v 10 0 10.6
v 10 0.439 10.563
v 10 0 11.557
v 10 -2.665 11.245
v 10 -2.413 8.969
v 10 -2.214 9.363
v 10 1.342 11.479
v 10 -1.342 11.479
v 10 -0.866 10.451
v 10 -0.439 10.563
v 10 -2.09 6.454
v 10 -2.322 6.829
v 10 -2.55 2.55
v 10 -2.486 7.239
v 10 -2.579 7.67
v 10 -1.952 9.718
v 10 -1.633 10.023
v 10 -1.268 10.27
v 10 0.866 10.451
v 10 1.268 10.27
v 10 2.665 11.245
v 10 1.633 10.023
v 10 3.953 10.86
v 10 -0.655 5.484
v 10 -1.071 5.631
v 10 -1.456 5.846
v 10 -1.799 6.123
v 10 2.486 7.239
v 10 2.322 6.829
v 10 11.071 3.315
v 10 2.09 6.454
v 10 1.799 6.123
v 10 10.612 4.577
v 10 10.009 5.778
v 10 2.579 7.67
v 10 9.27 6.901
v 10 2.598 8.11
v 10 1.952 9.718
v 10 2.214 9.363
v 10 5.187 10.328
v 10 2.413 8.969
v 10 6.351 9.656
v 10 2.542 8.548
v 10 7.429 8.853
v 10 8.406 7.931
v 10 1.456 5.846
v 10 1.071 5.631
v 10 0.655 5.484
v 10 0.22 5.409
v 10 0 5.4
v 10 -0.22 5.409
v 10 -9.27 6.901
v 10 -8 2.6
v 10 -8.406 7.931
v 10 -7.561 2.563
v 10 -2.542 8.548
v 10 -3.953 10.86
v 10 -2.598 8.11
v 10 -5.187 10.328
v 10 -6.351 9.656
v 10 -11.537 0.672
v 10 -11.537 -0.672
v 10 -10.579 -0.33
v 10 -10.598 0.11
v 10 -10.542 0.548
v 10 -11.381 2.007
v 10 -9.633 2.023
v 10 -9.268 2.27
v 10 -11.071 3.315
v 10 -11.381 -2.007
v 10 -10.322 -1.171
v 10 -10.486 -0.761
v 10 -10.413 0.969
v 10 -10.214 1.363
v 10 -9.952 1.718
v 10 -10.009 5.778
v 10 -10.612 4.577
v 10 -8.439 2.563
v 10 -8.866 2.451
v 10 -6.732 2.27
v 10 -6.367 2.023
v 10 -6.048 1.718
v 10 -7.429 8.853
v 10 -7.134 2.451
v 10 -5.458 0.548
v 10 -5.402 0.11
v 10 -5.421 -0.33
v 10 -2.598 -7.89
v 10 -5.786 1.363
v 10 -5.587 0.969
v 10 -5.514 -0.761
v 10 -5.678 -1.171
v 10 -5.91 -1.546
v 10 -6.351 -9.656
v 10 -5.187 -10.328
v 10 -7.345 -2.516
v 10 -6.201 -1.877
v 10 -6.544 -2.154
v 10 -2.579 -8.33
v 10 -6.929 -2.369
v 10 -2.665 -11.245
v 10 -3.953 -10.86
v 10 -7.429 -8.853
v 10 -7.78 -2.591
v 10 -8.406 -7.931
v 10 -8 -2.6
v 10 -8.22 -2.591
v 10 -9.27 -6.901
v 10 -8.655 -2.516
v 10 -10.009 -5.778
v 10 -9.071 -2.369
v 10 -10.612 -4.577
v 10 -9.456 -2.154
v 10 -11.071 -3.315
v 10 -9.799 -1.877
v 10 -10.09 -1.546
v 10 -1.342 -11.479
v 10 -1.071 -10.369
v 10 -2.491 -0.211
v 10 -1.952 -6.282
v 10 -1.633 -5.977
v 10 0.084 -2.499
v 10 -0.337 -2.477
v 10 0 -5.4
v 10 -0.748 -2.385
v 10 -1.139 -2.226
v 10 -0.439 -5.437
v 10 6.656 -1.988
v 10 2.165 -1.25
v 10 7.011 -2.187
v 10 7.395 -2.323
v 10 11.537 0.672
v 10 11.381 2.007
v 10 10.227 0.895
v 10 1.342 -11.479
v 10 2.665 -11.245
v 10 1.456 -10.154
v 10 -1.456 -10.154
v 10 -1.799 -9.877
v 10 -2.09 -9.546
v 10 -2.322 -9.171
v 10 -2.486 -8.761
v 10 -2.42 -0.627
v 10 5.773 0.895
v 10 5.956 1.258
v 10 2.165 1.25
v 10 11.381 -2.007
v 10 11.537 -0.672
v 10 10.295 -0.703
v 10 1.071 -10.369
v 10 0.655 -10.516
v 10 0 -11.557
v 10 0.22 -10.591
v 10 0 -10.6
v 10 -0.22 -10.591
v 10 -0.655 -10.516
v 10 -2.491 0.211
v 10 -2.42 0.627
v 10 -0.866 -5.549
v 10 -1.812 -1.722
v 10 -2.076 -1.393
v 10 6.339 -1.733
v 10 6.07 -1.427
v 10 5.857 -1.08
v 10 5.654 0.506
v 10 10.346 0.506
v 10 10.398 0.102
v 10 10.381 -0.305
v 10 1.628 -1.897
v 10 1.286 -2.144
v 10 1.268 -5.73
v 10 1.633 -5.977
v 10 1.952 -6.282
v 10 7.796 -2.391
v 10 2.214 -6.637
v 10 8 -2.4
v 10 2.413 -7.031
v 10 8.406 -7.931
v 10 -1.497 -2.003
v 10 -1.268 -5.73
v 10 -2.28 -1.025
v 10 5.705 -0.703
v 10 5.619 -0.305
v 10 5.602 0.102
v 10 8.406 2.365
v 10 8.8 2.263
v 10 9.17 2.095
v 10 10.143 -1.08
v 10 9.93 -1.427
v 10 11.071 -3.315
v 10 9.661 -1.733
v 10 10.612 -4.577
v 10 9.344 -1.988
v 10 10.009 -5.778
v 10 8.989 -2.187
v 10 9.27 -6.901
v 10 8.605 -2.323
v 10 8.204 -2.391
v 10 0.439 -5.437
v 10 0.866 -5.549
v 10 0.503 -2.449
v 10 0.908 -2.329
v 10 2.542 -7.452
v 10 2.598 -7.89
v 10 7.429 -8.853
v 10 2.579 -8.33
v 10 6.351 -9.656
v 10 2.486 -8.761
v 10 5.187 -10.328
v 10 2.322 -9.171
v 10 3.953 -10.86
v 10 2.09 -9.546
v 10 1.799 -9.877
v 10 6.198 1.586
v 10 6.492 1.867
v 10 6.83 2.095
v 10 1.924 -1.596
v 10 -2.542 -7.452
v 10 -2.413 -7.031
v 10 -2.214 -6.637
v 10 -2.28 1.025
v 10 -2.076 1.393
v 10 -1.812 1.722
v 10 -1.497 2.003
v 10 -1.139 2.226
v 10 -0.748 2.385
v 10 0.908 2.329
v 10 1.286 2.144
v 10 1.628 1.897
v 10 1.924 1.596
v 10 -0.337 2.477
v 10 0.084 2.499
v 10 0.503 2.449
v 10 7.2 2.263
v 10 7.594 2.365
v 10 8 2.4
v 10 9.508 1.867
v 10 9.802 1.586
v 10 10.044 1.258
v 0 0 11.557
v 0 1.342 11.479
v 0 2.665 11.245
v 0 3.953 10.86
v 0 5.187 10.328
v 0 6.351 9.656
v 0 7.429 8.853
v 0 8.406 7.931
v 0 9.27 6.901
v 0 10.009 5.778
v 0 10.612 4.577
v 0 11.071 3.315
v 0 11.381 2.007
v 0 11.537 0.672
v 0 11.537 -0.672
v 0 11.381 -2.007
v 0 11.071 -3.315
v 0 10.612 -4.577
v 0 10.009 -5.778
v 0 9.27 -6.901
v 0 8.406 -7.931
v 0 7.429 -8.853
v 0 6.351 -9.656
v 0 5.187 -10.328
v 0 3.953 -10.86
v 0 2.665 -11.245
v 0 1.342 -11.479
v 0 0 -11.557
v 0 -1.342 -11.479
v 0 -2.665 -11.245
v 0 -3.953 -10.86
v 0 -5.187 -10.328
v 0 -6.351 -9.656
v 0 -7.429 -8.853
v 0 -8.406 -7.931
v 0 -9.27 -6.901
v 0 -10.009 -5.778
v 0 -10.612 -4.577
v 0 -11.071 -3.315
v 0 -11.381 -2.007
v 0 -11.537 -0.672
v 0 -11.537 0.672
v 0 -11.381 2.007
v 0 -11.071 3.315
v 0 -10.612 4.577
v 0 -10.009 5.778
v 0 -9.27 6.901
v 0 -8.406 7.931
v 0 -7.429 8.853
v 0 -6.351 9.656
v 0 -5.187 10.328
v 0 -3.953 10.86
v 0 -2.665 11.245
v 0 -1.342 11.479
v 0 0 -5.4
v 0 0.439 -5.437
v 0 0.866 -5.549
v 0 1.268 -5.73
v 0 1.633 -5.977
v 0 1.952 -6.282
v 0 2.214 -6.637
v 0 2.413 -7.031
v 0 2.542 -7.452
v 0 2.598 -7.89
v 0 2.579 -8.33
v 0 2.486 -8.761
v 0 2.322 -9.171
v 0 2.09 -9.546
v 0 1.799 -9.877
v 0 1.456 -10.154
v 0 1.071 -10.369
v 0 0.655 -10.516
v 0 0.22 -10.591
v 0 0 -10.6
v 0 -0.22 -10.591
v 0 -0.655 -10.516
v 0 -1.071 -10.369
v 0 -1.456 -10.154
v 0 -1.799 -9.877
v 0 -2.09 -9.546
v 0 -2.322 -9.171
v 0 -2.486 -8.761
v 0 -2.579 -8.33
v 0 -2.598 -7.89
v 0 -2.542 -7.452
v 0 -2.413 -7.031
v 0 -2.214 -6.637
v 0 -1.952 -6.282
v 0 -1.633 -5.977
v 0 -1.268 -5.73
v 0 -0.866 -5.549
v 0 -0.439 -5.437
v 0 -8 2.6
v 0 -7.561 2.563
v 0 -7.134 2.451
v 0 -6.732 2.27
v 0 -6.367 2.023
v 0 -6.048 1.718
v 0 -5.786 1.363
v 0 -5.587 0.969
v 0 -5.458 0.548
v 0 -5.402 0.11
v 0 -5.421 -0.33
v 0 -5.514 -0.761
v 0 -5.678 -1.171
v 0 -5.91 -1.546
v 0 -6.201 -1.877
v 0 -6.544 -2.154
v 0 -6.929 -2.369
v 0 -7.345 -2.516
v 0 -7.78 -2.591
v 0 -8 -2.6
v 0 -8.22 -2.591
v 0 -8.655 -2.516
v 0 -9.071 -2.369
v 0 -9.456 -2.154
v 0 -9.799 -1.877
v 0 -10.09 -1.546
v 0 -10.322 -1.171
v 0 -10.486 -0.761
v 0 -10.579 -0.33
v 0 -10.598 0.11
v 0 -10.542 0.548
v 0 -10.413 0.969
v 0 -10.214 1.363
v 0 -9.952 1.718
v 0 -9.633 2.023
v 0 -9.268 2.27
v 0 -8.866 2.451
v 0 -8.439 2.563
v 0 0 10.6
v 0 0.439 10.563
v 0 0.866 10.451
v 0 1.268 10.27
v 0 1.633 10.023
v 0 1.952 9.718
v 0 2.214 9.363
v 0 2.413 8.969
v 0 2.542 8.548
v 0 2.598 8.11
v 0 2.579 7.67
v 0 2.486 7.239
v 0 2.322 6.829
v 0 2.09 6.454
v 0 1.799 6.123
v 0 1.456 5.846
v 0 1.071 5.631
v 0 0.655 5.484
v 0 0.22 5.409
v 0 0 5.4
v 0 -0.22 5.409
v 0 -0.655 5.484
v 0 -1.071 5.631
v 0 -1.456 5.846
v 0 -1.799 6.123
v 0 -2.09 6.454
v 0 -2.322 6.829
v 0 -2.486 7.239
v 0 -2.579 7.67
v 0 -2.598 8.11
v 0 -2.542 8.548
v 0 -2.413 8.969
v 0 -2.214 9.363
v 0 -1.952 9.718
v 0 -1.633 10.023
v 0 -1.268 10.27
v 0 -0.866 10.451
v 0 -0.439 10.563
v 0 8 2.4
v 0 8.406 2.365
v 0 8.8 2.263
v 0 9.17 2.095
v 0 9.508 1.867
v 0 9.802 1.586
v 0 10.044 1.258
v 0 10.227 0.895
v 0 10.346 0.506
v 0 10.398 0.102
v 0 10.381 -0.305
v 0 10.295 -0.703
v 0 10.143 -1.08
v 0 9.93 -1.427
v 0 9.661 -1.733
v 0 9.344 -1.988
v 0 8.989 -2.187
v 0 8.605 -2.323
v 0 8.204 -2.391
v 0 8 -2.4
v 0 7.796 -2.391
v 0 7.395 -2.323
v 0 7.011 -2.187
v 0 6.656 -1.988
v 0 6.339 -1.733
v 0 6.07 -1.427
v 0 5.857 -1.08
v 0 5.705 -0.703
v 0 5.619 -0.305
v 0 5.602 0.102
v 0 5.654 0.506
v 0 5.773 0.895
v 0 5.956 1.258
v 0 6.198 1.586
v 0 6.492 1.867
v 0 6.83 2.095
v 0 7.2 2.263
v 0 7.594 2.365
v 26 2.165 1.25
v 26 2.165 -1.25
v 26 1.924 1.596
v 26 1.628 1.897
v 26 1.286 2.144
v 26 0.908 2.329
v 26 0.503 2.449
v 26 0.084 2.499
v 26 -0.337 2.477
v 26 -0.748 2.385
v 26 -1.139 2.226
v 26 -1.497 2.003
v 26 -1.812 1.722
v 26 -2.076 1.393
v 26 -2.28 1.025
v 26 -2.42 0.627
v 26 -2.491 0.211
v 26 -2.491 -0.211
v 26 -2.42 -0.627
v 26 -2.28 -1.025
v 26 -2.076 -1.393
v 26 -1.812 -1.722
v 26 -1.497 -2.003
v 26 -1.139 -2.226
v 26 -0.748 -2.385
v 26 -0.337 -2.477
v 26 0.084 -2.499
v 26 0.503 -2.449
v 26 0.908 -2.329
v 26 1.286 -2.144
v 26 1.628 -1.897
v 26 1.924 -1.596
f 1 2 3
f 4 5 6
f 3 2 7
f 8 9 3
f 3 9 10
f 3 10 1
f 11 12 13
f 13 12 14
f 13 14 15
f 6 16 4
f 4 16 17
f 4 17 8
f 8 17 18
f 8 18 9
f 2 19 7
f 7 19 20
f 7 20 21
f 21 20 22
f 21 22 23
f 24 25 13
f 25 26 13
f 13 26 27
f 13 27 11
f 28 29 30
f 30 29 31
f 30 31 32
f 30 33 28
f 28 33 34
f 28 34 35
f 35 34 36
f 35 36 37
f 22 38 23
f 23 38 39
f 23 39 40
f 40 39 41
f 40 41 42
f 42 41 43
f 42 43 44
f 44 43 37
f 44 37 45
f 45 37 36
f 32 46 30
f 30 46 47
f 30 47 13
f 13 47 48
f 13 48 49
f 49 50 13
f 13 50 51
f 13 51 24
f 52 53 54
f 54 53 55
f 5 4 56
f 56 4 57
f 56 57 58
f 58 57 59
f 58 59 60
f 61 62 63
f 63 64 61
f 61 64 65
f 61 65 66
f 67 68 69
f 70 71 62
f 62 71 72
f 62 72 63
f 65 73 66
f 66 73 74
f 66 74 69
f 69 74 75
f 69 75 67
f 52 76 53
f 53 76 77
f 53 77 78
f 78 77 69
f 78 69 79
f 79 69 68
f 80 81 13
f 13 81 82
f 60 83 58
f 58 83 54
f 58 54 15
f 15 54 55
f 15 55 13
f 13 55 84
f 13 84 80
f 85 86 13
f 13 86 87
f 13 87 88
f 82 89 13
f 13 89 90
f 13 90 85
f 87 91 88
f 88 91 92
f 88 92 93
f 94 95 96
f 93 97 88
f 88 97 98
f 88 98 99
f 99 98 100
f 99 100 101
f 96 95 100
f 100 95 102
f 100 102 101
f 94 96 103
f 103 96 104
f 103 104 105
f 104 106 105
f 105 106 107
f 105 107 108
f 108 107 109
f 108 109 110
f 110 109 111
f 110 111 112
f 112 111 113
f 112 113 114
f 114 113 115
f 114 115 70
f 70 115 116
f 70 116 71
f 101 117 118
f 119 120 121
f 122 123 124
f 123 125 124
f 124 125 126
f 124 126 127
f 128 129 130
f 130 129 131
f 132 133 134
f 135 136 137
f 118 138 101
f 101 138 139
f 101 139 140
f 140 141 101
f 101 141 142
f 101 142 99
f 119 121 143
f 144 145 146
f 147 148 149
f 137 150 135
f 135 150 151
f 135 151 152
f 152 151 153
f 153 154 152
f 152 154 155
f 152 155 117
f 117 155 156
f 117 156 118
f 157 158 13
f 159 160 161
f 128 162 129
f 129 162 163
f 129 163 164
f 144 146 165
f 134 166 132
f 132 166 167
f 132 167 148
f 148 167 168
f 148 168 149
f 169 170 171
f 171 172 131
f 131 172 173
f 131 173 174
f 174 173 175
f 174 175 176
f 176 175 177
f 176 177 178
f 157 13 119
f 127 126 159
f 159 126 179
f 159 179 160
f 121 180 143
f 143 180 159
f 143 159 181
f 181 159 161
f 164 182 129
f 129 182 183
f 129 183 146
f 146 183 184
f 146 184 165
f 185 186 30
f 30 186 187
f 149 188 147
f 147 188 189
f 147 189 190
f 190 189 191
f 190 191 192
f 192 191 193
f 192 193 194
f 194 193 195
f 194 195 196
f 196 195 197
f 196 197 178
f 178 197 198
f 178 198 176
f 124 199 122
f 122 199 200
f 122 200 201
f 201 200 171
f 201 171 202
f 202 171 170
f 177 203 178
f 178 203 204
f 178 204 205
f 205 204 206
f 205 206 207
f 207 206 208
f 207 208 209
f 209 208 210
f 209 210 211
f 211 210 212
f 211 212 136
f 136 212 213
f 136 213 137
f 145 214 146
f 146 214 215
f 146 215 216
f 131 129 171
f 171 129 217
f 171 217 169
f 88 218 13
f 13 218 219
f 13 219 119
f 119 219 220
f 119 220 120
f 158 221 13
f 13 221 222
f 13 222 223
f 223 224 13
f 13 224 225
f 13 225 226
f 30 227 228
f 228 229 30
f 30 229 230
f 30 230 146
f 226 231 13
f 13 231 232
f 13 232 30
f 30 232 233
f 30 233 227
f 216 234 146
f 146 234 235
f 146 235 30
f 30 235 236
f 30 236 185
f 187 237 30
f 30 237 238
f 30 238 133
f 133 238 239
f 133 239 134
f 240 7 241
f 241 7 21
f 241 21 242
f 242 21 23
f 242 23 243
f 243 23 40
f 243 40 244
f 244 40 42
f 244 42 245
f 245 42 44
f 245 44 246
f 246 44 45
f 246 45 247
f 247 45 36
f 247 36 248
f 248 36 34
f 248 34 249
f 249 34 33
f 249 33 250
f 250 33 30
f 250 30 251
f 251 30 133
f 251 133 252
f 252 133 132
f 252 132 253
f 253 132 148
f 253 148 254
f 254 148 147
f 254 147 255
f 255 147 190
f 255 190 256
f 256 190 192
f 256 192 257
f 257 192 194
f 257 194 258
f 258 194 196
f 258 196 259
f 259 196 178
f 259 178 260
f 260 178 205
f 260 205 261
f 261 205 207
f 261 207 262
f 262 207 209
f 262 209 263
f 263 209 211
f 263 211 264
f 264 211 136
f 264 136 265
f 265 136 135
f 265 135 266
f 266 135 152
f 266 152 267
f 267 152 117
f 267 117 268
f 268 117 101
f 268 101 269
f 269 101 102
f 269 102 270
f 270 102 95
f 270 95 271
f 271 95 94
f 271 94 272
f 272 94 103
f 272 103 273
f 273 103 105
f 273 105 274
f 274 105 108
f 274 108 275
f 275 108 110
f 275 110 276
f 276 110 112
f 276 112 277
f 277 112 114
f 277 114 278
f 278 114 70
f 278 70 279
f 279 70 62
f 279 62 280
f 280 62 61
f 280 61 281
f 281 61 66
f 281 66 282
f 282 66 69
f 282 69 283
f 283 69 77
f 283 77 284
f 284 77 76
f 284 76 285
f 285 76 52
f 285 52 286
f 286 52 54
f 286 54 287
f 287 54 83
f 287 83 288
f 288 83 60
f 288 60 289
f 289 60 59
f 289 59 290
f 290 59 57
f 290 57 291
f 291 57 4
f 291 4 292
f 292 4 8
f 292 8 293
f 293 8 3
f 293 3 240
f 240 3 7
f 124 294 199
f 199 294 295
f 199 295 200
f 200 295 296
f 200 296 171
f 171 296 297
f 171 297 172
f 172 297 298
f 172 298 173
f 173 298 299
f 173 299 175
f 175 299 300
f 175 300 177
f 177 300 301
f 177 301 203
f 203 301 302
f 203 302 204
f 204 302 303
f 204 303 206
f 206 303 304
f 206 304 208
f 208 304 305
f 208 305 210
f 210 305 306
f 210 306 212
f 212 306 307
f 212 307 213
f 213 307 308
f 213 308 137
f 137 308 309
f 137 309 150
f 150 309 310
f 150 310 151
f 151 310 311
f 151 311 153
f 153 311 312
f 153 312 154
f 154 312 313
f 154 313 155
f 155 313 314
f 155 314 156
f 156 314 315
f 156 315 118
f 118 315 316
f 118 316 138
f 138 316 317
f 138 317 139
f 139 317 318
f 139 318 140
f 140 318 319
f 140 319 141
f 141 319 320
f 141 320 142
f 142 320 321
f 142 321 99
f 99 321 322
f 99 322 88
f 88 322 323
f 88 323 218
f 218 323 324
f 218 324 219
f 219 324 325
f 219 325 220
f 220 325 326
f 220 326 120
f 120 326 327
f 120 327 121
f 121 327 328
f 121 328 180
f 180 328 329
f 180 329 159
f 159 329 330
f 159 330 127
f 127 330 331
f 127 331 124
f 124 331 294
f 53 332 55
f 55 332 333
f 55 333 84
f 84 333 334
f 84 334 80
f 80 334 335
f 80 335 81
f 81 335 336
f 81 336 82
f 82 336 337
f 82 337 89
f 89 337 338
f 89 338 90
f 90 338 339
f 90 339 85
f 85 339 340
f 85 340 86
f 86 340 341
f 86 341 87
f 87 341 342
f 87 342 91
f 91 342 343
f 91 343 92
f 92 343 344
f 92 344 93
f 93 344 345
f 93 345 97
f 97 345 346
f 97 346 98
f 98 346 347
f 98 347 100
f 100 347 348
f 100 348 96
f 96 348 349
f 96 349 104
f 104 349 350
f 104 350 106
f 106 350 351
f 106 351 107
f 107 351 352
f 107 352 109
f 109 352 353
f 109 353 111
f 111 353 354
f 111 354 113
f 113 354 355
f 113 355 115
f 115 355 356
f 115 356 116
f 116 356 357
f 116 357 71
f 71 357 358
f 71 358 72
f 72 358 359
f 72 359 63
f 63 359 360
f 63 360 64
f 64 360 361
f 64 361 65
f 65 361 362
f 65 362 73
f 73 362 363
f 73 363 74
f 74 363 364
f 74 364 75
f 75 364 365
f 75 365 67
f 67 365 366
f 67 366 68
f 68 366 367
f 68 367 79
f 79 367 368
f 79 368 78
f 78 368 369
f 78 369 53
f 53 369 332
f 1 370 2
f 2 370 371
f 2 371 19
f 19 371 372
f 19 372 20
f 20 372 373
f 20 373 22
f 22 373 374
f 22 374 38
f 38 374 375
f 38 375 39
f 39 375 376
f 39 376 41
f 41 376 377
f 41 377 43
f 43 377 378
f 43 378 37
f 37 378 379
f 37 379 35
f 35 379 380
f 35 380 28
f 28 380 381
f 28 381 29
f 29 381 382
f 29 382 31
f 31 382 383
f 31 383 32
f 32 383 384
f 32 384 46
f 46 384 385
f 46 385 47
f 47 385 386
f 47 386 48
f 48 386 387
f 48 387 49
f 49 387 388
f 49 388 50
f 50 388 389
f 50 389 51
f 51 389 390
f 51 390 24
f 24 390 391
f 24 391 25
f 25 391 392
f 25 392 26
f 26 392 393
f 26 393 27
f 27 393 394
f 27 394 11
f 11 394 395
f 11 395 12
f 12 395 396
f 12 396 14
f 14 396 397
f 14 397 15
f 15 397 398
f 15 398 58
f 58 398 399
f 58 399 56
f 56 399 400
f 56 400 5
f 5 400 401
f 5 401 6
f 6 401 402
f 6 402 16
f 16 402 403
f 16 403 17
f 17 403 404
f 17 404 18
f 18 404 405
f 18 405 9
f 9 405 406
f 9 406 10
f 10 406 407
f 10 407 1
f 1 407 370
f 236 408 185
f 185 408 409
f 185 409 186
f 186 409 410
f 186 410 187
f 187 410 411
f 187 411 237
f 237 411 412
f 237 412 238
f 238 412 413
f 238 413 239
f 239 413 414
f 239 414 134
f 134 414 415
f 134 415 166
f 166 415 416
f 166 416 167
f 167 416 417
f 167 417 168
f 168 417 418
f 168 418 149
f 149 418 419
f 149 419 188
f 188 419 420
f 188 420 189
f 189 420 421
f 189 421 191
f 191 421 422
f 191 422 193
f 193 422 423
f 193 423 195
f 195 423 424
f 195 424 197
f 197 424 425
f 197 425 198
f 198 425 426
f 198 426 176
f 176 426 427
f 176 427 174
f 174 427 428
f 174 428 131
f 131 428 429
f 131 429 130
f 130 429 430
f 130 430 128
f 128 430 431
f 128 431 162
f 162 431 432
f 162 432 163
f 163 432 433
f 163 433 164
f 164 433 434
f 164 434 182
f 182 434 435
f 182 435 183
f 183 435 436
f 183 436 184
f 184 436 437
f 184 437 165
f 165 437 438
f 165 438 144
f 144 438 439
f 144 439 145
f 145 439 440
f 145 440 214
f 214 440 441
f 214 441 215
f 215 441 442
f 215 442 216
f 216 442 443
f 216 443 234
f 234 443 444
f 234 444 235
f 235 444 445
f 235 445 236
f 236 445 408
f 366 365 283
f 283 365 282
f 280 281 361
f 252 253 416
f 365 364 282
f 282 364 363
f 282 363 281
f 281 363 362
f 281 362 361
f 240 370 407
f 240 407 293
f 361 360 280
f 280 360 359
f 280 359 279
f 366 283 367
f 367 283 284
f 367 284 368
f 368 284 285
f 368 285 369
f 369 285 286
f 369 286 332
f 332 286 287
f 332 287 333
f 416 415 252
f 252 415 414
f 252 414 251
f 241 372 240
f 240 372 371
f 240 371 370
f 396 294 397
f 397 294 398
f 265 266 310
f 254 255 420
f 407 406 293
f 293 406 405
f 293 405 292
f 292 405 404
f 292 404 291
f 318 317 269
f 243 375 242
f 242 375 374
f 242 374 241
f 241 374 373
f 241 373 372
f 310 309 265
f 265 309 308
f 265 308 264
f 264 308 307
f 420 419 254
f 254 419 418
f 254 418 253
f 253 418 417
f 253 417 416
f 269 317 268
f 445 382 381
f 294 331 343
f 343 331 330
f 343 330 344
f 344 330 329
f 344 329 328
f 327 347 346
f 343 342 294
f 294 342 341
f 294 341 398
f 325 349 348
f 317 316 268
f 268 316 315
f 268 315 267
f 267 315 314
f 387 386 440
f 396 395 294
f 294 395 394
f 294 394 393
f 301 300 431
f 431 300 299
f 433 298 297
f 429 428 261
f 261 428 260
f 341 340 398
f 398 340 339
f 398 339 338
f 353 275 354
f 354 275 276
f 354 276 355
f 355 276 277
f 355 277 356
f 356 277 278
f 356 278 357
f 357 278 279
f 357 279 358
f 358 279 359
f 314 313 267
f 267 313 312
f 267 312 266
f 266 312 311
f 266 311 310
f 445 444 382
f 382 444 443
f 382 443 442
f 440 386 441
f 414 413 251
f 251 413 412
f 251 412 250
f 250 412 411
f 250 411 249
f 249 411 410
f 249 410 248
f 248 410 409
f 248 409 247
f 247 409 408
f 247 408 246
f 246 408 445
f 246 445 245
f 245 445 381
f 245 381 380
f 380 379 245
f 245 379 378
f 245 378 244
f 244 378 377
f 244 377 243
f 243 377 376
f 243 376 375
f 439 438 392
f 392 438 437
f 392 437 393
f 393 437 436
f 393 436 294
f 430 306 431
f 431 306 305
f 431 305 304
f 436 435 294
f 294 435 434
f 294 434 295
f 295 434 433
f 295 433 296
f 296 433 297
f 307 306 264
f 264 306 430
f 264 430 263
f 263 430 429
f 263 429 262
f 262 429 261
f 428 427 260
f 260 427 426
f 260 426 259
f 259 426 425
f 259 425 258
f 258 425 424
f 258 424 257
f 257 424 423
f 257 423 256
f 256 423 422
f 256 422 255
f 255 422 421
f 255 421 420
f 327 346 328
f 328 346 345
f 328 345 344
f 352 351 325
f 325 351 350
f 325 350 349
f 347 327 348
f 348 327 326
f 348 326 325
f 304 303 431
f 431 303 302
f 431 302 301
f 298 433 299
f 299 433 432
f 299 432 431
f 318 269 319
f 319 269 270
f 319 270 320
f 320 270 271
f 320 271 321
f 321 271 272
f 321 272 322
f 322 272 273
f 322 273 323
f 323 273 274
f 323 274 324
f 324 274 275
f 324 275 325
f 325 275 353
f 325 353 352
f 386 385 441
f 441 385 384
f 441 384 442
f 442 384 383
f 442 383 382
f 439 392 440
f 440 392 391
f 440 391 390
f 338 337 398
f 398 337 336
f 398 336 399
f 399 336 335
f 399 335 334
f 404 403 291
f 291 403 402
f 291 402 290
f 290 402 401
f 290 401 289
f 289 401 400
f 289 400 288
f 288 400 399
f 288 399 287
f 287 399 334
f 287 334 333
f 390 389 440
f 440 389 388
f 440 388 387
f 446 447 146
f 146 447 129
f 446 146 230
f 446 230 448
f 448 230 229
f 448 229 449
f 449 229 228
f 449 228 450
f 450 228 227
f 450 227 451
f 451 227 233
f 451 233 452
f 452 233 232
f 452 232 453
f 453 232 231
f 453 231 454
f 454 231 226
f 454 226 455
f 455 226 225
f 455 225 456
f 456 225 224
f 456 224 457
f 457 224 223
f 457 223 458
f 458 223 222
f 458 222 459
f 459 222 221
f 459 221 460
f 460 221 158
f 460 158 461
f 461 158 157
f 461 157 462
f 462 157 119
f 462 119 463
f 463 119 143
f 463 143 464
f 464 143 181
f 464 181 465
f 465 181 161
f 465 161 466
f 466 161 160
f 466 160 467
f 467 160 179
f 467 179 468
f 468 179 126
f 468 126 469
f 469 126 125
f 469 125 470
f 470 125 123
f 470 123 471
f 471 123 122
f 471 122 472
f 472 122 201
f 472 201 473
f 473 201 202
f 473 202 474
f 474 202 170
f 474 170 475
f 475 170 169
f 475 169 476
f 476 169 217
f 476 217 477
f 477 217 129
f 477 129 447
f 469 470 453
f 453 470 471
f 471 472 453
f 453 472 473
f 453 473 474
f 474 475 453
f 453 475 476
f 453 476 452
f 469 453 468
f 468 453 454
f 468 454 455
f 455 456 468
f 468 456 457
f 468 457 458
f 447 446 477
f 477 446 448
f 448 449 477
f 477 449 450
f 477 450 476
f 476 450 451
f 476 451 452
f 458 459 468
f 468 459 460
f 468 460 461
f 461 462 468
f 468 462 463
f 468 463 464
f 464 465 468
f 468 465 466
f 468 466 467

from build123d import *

# Parameters (mm, degrees)
SKETCH1_R           = 11.557
SKETCH1_R_2         = 2.6
SKETCH1_R_3         = 2.4
BOSS_EXTRUDE1_DEPTH = 10
BOSS_EXTRUDE2_DEPTH = 16


with BuildPart() as part:
    # Sketch1 → Boss-Extrude1 (new body)
    with BuildSketch(Plane(origin=(0, 0, 0), x_dir=(0, 0, -1), z_dir=(1, 0, 0))):
        Circle(SKETCH1_R)
        with Locations((8, 0)):
            Circle(SKETCH1_R_2, mode=Mode.SUBTRACT)
        with Locations((0, -8)):
            Circle(SKETCH1_R_2, mode=Mode.SUBTRACT)
        with Locations((-8, 0)):
            Circle(SKETCH1_R_2, mode=Mode.SUBTRACT)
        with Locations((0, 8)):
            Circle(SKETCH1_R_3, mode=Mode.SUBTRACT)
    extrude(amount=BOSS_EXTRUDE1_DEPTH)

    # Sketch2 → Boss-Extrude2 (add)
    with BuildSketch(Plane(origin=(10, 0, 0), x_dir=(0, 0, -1), z_dir=(1, 0, 0))):
        with BuildLine():
            Line((1.25, 2.165063509), (-1.25, 2.165063509))
            ThreePointArc((-1.25, 2.165063509), (-1.25, -2.165063509), (2.5, 0))
            ThreePointArc((2.5, 0), (2.165063509, 1.25), (1.25, 2.165063509))
        make_face()
    extrude(amount=BOSS_EXTRUDE2_DEPTH)


solid = part.part
